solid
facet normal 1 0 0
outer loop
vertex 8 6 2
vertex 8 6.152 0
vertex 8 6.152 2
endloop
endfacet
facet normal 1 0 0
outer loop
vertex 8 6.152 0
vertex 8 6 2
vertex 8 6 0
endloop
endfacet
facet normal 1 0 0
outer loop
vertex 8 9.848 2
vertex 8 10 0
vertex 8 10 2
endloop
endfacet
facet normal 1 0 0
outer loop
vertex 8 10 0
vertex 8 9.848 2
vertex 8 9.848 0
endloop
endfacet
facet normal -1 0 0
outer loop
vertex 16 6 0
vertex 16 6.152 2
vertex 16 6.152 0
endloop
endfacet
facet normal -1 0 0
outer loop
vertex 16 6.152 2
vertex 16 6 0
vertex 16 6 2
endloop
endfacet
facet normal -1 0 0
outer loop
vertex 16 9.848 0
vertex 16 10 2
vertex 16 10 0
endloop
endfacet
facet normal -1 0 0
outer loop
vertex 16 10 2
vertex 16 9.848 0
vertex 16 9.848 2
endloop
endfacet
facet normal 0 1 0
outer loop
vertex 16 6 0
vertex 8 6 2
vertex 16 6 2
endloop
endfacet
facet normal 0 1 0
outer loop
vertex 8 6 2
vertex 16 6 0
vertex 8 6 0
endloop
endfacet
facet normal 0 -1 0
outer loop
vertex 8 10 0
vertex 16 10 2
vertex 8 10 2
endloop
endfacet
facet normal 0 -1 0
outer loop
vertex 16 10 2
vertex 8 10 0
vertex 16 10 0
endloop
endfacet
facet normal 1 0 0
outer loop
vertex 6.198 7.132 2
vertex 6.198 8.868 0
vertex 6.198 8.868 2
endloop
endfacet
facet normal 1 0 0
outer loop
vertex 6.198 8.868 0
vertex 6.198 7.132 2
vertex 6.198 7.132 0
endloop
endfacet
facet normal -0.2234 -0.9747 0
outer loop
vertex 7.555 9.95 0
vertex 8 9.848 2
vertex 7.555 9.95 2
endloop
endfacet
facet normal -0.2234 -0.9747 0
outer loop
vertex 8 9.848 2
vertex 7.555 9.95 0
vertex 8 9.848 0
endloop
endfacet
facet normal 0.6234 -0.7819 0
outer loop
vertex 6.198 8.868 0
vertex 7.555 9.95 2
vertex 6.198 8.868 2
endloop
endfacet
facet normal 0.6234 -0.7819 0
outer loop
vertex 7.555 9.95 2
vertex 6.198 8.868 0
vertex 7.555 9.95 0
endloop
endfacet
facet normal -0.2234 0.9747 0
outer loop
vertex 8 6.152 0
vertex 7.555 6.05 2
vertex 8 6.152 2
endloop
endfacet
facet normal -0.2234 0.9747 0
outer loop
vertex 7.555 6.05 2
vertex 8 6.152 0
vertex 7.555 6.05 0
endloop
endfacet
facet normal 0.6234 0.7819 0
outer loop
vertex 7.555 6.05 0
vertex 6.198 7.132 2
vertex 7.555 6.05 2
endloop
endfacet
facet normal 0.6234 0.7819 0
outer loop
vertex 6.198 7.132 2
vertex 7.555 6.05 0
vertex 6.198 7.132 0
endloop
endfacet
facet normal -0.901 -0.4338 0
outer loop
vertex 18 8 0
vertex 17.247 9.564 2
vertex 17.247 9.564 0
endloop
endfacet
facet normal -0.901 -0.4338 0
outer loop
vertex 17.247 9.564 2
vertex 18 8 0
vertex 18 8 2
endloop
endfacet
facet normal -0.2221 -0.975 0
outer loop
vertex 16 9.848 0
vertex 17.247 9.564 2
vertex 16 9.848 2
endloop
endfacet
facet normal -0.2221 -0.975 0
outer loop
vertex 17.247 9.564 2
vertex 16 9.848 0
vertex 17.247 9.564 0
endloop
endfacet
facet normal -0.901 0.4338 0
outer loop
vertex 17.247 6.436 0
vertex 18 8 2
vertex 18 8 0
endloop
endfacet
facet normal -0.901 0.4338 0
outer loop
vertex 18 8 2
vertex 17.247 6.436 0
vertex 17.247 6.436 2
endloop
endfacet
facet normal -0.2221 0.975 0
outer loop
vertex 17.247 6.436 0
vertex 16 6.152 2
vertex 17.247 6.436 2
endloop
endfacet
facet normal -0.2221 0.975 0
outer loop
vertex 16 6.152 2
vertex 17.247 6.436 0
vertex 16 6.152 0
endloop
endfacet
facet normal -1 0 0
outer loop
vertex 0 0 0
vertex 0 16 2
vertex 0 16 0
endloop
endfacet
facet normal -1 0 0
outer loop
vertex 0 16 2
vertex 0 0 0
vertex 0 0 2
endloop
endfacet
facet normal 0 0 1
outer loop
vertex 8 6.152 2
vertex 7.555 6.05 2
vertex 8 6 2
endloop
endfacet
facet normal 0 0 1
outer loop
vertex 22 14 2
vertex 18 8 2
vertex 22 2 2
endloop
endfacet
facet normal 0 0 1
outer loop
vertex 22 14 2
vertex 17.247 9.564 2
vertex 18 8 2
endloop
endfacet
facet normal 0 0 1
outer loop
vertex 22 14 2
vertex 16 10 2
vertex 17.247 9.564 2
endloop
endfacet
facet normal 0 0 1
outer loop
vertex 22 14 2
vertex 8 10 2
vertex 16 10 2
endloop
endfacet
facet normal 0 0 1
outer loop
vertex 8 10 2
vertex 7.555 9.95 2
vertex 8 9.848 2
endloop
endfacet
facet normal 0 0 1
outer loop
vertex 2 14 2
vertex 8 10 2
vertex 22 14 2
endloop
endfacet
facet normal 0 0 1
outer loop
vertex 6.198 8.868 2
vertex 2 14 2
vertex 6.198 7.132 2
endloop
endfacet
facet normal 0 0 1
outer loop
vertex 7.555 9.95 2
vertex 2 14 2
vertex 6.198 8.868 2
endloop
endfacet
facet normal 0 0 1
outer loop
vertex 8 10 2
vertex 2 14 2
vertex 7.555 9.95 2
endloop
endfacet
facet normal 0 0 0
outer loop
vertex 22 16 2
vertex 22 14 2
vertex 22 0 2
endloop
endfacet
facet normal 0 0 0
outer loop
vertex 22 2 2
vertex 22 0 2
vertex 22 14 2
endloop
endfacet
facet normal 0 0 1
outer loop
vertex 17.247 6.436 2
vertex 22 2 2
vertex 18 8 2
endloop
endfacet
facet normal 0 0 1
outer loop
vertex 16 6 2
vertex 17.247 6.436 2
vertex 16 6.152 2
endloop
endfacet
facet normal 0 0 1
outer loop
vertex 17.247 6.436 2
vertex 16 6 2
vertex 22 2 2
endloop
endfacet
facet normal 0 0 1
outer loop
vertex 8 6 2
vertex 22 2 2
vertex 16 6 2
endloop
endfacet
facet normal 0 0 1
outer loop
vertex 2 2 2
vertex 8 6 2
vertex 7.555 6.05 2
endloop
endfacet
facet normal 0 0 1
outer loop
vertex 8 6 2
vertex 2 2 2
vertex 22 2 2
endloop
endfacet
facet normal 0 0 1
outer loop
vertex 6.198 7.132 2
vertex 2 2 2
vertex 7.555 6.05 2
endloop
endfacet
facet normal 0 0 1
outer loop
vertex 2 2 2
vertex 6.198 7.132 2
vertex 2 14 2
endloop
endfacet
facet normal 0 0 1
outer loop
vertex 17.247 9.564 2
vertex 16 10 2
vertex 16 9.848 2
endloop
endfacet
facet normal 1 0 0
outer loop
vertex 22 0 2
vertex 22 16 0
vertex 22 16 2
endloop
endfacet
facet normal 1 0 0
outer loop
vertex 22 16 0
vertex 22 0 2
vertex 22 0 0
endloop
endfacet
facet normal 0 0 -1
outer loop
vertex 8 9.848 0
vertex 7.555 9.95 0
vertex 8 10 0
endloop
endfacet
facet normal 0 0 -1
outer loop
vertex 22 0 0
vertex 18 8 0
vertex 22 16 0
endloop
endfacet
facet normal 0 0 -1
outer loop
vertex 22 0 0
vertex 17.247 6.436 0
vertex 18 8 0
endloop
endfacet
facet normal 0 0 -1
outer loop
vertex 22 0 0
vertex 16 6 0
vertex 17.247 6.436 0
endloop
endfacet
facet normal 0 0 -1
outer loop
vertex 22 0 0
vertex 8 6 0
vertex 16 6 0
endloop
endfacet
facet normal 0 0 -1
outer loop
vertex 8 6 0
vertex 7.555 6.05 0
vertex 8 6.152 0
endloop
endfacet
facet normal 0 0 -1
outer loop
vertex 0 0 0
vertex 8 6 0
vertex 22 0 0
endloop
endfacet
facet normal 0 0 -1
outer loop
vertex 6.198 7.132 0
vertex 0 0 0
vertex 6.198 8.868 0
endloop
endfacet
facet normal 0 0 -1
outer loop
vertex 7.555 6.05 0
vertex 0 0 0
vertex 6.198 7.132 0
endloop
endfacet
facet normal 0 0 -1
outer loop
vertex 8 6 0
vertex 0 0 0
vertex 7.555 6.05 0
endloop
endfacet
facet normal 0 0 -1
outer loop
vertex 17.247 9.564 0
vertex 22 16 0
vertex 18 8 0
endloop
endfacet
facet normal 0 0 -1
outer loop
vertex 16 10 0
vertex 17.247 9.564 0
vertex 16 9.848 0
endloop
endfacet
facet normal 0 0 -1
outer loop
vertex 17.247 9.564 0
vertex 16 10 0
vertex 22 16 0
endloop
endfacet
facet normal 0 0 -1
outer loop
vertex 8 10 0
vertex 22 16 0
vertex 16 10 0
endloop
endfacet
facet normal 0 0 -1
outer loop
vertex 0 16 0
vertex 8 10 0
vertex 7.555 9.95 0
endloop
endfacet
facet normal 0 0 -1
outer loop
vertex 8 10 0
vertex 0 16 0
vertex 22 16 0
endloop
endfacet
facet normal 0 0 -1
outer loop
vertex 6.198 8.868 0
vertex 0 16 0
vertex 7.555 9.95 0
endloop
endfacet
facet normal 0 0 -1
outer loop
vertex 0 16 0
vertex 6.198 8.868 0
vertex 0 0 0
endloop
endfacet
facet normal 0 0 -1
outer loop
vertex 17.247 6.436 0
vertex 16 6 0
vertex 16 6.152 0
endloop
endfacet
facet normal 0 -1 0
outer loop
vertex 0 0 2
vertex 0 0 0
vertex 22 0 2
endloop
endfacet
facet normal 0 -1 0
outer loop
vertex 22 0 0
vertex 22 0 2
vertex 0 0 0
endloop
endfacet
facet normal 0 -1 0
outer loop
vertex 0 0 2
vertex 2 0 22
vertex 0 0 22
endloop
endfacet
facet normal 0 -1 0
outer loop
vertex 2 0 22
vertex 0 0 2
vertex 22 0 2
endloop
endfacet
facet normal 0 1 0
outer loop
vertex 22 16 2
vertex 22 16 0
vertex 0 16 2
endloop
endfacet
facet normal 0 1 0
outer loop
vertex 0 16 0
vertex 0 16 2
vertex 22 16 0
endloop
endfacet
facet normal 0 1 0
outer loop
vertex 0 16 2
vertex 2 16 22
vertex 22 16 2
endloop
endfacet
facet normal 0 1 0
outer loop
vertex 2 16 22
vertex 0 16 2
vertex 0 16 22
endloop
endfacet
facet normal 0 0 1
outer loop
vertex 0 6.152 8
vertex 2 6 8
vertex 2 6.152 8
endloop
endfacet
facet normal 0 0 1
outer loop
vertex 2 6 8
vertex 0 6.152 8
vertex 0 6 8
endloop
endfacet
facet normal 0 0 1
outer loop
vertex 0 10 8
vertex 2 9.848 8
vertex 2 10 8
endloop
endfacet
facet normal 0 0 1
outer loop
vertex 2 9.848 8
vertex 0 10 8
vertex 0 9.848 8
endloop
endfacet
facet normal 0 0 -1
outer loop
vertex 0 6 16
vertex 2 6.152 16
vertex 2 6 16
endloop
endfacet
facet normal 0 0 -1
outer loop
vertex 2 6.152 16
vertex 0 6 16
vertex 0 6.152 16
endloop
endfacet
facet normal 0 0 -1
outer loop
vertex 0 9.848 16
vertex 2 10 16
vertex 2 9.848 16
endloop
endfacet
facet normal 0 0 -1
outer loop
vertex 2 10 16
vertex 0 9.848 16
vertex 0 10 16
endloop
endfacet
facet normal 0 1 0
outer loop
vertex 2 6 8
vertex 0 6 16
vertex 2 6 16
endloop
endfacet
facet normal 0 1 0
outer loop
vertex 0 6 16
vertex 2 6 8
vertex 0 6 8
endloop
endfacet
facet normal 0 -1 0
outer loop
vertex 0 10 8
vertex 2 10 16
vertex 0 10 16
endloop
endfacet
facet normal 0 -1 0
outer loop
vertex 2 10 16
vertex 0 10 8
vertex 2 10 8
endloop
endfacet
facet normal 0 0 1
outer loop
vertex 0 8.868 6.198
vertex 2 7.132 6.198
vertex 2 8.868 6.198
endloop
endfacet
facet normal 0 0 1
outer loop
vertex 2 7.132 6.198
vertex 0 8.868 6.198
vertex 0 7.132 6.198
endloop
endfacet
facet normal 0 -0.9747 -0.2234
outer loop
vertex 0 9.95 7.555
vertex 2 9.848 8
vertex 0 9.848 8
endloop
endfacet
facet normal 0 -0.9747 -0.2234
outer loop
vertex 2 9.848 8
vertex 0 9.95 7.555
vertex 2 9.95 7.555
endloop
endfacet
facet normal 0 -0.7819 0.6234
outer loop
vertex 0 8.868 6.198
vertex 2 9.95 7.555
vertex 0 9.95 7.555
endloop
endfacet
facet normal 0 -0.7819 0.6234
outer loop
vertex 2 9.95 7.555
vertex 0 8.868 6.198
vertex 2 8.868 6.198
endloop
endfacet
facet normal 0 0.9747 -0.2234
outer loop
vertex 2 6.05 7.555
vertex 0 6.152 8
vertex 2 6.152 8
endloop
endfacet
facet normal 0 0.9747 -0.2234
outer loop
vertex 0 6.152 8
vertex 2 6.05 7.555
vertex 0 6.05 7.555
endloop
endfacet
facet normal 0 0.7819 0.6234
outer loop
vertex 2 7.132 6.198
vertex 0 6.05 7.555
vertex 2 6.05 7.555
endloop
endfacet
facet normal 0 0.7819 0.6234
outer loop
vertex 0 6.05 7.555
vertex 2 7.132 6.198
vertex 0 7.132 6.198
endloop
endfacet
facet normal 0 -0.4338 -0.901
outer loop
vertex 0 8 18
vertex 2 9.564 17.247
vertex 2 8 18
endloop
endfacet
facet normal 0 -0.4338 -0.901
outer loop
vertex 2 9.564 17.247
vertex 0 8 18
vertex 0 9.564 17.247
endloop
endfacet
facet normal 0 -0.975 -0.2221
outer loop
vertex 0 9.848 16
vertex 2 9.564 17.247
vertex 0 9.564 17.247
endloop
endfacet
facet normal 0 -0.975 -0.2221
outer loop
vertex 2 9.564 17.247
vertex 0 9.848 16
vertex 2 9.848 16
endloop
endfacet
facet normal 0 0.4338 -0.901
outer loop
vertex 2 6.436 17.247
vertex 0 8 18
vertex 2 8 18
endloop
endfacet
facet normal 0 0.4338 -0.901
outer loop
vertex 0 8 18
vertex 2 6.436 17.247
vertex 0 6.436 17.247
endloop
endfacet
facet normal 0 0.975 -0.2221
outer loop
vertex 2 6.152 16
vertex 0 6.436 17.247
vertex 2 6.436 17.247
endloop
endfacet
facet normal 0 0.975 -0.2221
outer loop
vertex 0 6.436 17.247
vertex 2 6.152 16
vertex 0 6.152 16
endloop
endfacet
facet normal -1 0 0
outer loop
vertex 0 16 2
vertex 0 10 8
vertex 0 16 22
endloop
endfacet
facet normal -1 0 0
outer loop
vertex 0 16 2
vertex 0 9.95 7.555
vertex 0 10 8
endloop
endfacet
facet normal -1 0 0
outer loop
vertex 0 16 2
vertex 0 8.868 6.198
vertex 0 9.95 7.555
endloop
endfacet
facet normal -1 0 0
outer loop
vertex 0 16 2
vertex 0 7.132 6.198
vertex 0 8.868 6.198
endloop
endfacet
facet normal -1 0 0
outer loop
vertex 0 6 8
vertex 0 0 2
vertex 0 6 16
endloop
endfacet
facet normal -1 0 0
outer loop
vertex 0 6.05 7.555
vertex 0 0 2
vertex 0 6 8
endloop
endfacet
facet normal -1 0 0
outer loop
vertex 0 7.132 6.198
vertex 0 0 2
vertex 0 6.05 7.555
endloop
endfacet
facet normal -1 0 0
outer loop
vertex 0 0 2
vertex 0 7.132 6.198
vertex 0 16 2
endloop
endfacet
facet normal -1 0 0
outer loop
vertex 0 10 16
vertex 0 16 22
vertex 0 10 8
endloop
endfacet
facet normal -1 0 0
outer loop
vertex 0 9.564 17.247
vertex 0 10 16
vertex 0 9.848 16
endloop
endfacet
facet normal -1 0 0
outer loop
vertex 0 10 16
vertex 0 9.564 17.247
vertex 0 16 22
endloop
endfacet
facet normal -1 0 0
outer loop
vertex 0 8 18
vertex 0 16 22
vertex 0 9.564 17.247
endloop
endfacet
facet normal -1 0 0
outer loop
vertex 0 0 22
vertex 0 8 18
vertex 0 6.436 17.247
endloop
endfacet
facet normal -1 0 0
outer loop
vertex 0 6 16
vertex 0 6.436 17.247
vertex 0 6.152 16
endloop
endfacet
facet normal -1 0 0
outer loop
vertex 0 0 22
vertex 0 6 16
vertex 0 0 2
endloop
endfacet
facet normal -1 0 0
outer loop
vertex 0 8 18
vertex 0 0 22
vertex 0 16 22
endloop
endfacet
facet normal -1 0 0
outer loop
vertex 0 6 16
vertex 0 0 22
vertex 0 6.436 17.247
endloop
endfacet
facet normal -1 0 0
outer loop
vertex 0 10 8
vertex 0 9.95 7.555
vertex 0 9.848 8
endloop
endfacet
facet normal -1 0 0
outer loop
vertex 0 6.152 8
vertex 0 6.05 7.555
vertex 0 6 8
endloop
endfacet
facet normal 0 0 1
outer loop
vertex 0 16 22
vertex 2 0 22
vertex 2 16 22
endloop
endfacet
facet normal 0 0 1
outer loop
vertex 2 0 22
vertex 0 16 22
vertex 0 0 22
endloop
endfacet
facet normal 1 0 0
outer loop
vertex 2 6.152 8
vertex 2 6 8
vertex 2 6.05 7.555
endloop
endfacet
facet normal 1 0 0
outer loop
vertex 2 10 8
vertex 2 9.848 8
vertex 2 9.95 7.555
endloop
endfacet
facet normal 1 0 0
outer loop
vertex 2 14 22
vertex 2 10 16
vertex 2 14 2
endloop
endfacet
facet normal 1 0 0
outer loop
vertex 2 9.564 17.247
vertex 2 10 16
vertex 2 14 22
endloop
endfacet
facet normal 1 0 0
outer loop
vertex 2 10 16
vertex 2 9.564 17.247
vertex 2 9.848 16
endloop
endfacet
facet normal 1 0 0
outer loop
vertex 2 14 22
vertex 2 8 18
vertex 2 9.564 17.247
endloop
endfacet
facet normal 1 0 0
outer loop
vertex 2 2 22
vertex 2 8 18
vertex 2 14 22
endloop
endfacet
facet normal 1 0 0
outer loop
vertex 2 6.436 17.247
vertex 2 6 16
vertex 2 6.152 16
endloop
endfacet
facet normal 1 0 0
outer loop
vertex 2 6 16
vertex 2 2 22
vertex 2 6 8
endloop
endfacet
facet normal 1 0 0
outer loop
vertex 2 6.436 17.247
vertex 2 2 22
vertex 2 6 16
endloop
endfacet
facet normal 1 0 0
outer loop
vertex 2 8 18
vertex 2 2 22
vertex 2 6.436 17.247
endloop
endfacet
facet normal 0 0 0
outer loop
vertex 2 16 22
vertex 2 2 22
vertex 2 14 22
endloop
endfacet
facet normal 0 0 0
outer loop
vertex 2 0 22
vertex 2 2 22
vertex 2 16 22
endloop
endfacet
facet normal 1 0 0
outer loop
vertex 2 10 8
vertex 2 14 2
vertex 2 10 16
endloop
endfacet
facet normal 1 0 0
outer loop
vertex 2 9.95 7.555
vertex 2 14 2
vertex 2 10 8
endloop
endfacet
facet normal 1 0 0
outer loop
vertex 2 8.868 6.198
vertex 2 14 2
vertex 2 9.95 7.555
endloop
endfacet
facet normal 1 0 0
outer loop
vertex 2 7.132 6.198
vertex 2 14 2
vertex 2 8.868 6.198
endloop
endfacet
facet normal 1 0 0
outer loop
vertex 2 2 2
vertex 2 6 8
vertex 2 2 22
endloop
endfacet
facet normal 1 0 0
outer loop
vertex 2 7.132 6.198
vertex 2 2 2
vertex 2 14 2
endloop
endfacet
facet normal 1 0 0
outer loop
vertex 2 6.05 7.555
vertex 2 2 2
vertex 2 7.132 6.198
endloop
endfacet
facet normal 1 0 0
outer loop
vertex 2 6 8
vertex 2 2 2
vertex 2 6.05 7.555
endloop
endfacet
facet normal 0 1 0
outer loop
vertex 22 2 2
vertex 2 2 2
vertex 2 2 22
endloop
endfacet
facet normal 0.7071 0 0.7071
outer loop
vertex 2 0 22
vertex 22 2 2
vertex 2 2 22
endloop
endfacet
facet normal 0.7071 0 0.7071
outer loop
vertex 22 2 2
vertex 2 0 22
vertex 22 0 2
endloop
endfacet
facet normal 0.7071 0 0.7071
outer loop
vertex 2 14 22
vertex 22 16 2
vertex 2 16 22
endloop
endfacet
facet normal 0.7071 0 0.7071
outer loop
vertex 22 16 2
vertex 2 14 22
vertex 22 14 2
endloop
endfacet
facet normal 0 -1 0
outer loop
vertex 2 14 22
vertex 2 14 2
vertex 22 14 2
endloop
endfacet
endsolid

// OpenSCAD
//=============================================================================
// l-bracket.scad
//
// generates an l-bracket from the given parameters
//=============================================================================
// Written in 2015 by Patrick Barrett
//
// To the extent possible under law, the author(s) have dedicated all copyright
// and related and neighboring rights to this work to the public domain
// worldwide. This work is distributed without any warranty.
//
// See <http://creativecommons.org/publicdomain/zero/1.0/> for full dedication.
//=============================================================================

wall_thickness = 2;
internal_width = 12;
slot_width = 4;
side_length = 20;

// customizable variables end here

head_annulus = (internal_width/2) - (slot_width/2);

abit = 0.0001 * 1; //use for making overlap to get single manifold stl

module stadium3d(a, r, z, center = false){
	offset_x = center ? -(r + (a / 2)) : 0;
	offset_y = center ? -(r) : 0;
	offset_z = center ? -(z / 2) : 0;

	translate([offset_x, offset_y, offset_z])
	union() {
		translate([r, 0, 0])
			cube([a, 2*r, z]);
		translate([r, r, 0])
			cylinder(h = z, r = r, center = false);
		translate([r + a, r, 0])
			cylinder(h = z, r = r);
	}
}

union() {
	// horizontal wall
	difference() {
		cube([side_length + wall_thickness,
		      internal_width + 2*wall_thickness,
		      wall_thickness]);
		translate([wall_thickness + head_annulus,
		           wall_thickness + head_annulus,
		           -1])
			stadium3d(side_length - (2*head_annulus) - slot_width,
 			          slot_width / 2,
 			          wall_thickness + 2);
	}

	// verticle wall
	translate([wall_thickness, 0, 0])
	rotate([0,-90,0])
	difference() {
		cube([side_length + wall_thickness,
		      internal_width + 2*wall_thickness,
		      wall_thickness]);
		translate([wall_thickness + head_annulus,
		           wall_thickness + head_annulus,
		           -1])
			stadium3d(side_length - (2*head_annulus) - slot_width,
 			          slot_width / 2,
 			          wall_thickness + 2);
	}

	// bracer 1
	translate([wall_thickness - abit,
	           wall_thickness,
	           wall_thickness - abit])
	rotate([90,0,0])
	linear_extrude(height = wall_thickness) {
		polygon([[0,0],
		        [side_length,0],
		        [0,side_length]]);
	}

	// bracer 2
	translate([wall_thickness - abit,
	           2*wall_thickness + internal_width,
	           wall_thickness - abit])
	rotate([90,0,0])
	linear_extrude(height = wall_thickness) {
		polygon([[0,0],
		        [side_length,0],
		        [0,side_length]]);
	}
}
